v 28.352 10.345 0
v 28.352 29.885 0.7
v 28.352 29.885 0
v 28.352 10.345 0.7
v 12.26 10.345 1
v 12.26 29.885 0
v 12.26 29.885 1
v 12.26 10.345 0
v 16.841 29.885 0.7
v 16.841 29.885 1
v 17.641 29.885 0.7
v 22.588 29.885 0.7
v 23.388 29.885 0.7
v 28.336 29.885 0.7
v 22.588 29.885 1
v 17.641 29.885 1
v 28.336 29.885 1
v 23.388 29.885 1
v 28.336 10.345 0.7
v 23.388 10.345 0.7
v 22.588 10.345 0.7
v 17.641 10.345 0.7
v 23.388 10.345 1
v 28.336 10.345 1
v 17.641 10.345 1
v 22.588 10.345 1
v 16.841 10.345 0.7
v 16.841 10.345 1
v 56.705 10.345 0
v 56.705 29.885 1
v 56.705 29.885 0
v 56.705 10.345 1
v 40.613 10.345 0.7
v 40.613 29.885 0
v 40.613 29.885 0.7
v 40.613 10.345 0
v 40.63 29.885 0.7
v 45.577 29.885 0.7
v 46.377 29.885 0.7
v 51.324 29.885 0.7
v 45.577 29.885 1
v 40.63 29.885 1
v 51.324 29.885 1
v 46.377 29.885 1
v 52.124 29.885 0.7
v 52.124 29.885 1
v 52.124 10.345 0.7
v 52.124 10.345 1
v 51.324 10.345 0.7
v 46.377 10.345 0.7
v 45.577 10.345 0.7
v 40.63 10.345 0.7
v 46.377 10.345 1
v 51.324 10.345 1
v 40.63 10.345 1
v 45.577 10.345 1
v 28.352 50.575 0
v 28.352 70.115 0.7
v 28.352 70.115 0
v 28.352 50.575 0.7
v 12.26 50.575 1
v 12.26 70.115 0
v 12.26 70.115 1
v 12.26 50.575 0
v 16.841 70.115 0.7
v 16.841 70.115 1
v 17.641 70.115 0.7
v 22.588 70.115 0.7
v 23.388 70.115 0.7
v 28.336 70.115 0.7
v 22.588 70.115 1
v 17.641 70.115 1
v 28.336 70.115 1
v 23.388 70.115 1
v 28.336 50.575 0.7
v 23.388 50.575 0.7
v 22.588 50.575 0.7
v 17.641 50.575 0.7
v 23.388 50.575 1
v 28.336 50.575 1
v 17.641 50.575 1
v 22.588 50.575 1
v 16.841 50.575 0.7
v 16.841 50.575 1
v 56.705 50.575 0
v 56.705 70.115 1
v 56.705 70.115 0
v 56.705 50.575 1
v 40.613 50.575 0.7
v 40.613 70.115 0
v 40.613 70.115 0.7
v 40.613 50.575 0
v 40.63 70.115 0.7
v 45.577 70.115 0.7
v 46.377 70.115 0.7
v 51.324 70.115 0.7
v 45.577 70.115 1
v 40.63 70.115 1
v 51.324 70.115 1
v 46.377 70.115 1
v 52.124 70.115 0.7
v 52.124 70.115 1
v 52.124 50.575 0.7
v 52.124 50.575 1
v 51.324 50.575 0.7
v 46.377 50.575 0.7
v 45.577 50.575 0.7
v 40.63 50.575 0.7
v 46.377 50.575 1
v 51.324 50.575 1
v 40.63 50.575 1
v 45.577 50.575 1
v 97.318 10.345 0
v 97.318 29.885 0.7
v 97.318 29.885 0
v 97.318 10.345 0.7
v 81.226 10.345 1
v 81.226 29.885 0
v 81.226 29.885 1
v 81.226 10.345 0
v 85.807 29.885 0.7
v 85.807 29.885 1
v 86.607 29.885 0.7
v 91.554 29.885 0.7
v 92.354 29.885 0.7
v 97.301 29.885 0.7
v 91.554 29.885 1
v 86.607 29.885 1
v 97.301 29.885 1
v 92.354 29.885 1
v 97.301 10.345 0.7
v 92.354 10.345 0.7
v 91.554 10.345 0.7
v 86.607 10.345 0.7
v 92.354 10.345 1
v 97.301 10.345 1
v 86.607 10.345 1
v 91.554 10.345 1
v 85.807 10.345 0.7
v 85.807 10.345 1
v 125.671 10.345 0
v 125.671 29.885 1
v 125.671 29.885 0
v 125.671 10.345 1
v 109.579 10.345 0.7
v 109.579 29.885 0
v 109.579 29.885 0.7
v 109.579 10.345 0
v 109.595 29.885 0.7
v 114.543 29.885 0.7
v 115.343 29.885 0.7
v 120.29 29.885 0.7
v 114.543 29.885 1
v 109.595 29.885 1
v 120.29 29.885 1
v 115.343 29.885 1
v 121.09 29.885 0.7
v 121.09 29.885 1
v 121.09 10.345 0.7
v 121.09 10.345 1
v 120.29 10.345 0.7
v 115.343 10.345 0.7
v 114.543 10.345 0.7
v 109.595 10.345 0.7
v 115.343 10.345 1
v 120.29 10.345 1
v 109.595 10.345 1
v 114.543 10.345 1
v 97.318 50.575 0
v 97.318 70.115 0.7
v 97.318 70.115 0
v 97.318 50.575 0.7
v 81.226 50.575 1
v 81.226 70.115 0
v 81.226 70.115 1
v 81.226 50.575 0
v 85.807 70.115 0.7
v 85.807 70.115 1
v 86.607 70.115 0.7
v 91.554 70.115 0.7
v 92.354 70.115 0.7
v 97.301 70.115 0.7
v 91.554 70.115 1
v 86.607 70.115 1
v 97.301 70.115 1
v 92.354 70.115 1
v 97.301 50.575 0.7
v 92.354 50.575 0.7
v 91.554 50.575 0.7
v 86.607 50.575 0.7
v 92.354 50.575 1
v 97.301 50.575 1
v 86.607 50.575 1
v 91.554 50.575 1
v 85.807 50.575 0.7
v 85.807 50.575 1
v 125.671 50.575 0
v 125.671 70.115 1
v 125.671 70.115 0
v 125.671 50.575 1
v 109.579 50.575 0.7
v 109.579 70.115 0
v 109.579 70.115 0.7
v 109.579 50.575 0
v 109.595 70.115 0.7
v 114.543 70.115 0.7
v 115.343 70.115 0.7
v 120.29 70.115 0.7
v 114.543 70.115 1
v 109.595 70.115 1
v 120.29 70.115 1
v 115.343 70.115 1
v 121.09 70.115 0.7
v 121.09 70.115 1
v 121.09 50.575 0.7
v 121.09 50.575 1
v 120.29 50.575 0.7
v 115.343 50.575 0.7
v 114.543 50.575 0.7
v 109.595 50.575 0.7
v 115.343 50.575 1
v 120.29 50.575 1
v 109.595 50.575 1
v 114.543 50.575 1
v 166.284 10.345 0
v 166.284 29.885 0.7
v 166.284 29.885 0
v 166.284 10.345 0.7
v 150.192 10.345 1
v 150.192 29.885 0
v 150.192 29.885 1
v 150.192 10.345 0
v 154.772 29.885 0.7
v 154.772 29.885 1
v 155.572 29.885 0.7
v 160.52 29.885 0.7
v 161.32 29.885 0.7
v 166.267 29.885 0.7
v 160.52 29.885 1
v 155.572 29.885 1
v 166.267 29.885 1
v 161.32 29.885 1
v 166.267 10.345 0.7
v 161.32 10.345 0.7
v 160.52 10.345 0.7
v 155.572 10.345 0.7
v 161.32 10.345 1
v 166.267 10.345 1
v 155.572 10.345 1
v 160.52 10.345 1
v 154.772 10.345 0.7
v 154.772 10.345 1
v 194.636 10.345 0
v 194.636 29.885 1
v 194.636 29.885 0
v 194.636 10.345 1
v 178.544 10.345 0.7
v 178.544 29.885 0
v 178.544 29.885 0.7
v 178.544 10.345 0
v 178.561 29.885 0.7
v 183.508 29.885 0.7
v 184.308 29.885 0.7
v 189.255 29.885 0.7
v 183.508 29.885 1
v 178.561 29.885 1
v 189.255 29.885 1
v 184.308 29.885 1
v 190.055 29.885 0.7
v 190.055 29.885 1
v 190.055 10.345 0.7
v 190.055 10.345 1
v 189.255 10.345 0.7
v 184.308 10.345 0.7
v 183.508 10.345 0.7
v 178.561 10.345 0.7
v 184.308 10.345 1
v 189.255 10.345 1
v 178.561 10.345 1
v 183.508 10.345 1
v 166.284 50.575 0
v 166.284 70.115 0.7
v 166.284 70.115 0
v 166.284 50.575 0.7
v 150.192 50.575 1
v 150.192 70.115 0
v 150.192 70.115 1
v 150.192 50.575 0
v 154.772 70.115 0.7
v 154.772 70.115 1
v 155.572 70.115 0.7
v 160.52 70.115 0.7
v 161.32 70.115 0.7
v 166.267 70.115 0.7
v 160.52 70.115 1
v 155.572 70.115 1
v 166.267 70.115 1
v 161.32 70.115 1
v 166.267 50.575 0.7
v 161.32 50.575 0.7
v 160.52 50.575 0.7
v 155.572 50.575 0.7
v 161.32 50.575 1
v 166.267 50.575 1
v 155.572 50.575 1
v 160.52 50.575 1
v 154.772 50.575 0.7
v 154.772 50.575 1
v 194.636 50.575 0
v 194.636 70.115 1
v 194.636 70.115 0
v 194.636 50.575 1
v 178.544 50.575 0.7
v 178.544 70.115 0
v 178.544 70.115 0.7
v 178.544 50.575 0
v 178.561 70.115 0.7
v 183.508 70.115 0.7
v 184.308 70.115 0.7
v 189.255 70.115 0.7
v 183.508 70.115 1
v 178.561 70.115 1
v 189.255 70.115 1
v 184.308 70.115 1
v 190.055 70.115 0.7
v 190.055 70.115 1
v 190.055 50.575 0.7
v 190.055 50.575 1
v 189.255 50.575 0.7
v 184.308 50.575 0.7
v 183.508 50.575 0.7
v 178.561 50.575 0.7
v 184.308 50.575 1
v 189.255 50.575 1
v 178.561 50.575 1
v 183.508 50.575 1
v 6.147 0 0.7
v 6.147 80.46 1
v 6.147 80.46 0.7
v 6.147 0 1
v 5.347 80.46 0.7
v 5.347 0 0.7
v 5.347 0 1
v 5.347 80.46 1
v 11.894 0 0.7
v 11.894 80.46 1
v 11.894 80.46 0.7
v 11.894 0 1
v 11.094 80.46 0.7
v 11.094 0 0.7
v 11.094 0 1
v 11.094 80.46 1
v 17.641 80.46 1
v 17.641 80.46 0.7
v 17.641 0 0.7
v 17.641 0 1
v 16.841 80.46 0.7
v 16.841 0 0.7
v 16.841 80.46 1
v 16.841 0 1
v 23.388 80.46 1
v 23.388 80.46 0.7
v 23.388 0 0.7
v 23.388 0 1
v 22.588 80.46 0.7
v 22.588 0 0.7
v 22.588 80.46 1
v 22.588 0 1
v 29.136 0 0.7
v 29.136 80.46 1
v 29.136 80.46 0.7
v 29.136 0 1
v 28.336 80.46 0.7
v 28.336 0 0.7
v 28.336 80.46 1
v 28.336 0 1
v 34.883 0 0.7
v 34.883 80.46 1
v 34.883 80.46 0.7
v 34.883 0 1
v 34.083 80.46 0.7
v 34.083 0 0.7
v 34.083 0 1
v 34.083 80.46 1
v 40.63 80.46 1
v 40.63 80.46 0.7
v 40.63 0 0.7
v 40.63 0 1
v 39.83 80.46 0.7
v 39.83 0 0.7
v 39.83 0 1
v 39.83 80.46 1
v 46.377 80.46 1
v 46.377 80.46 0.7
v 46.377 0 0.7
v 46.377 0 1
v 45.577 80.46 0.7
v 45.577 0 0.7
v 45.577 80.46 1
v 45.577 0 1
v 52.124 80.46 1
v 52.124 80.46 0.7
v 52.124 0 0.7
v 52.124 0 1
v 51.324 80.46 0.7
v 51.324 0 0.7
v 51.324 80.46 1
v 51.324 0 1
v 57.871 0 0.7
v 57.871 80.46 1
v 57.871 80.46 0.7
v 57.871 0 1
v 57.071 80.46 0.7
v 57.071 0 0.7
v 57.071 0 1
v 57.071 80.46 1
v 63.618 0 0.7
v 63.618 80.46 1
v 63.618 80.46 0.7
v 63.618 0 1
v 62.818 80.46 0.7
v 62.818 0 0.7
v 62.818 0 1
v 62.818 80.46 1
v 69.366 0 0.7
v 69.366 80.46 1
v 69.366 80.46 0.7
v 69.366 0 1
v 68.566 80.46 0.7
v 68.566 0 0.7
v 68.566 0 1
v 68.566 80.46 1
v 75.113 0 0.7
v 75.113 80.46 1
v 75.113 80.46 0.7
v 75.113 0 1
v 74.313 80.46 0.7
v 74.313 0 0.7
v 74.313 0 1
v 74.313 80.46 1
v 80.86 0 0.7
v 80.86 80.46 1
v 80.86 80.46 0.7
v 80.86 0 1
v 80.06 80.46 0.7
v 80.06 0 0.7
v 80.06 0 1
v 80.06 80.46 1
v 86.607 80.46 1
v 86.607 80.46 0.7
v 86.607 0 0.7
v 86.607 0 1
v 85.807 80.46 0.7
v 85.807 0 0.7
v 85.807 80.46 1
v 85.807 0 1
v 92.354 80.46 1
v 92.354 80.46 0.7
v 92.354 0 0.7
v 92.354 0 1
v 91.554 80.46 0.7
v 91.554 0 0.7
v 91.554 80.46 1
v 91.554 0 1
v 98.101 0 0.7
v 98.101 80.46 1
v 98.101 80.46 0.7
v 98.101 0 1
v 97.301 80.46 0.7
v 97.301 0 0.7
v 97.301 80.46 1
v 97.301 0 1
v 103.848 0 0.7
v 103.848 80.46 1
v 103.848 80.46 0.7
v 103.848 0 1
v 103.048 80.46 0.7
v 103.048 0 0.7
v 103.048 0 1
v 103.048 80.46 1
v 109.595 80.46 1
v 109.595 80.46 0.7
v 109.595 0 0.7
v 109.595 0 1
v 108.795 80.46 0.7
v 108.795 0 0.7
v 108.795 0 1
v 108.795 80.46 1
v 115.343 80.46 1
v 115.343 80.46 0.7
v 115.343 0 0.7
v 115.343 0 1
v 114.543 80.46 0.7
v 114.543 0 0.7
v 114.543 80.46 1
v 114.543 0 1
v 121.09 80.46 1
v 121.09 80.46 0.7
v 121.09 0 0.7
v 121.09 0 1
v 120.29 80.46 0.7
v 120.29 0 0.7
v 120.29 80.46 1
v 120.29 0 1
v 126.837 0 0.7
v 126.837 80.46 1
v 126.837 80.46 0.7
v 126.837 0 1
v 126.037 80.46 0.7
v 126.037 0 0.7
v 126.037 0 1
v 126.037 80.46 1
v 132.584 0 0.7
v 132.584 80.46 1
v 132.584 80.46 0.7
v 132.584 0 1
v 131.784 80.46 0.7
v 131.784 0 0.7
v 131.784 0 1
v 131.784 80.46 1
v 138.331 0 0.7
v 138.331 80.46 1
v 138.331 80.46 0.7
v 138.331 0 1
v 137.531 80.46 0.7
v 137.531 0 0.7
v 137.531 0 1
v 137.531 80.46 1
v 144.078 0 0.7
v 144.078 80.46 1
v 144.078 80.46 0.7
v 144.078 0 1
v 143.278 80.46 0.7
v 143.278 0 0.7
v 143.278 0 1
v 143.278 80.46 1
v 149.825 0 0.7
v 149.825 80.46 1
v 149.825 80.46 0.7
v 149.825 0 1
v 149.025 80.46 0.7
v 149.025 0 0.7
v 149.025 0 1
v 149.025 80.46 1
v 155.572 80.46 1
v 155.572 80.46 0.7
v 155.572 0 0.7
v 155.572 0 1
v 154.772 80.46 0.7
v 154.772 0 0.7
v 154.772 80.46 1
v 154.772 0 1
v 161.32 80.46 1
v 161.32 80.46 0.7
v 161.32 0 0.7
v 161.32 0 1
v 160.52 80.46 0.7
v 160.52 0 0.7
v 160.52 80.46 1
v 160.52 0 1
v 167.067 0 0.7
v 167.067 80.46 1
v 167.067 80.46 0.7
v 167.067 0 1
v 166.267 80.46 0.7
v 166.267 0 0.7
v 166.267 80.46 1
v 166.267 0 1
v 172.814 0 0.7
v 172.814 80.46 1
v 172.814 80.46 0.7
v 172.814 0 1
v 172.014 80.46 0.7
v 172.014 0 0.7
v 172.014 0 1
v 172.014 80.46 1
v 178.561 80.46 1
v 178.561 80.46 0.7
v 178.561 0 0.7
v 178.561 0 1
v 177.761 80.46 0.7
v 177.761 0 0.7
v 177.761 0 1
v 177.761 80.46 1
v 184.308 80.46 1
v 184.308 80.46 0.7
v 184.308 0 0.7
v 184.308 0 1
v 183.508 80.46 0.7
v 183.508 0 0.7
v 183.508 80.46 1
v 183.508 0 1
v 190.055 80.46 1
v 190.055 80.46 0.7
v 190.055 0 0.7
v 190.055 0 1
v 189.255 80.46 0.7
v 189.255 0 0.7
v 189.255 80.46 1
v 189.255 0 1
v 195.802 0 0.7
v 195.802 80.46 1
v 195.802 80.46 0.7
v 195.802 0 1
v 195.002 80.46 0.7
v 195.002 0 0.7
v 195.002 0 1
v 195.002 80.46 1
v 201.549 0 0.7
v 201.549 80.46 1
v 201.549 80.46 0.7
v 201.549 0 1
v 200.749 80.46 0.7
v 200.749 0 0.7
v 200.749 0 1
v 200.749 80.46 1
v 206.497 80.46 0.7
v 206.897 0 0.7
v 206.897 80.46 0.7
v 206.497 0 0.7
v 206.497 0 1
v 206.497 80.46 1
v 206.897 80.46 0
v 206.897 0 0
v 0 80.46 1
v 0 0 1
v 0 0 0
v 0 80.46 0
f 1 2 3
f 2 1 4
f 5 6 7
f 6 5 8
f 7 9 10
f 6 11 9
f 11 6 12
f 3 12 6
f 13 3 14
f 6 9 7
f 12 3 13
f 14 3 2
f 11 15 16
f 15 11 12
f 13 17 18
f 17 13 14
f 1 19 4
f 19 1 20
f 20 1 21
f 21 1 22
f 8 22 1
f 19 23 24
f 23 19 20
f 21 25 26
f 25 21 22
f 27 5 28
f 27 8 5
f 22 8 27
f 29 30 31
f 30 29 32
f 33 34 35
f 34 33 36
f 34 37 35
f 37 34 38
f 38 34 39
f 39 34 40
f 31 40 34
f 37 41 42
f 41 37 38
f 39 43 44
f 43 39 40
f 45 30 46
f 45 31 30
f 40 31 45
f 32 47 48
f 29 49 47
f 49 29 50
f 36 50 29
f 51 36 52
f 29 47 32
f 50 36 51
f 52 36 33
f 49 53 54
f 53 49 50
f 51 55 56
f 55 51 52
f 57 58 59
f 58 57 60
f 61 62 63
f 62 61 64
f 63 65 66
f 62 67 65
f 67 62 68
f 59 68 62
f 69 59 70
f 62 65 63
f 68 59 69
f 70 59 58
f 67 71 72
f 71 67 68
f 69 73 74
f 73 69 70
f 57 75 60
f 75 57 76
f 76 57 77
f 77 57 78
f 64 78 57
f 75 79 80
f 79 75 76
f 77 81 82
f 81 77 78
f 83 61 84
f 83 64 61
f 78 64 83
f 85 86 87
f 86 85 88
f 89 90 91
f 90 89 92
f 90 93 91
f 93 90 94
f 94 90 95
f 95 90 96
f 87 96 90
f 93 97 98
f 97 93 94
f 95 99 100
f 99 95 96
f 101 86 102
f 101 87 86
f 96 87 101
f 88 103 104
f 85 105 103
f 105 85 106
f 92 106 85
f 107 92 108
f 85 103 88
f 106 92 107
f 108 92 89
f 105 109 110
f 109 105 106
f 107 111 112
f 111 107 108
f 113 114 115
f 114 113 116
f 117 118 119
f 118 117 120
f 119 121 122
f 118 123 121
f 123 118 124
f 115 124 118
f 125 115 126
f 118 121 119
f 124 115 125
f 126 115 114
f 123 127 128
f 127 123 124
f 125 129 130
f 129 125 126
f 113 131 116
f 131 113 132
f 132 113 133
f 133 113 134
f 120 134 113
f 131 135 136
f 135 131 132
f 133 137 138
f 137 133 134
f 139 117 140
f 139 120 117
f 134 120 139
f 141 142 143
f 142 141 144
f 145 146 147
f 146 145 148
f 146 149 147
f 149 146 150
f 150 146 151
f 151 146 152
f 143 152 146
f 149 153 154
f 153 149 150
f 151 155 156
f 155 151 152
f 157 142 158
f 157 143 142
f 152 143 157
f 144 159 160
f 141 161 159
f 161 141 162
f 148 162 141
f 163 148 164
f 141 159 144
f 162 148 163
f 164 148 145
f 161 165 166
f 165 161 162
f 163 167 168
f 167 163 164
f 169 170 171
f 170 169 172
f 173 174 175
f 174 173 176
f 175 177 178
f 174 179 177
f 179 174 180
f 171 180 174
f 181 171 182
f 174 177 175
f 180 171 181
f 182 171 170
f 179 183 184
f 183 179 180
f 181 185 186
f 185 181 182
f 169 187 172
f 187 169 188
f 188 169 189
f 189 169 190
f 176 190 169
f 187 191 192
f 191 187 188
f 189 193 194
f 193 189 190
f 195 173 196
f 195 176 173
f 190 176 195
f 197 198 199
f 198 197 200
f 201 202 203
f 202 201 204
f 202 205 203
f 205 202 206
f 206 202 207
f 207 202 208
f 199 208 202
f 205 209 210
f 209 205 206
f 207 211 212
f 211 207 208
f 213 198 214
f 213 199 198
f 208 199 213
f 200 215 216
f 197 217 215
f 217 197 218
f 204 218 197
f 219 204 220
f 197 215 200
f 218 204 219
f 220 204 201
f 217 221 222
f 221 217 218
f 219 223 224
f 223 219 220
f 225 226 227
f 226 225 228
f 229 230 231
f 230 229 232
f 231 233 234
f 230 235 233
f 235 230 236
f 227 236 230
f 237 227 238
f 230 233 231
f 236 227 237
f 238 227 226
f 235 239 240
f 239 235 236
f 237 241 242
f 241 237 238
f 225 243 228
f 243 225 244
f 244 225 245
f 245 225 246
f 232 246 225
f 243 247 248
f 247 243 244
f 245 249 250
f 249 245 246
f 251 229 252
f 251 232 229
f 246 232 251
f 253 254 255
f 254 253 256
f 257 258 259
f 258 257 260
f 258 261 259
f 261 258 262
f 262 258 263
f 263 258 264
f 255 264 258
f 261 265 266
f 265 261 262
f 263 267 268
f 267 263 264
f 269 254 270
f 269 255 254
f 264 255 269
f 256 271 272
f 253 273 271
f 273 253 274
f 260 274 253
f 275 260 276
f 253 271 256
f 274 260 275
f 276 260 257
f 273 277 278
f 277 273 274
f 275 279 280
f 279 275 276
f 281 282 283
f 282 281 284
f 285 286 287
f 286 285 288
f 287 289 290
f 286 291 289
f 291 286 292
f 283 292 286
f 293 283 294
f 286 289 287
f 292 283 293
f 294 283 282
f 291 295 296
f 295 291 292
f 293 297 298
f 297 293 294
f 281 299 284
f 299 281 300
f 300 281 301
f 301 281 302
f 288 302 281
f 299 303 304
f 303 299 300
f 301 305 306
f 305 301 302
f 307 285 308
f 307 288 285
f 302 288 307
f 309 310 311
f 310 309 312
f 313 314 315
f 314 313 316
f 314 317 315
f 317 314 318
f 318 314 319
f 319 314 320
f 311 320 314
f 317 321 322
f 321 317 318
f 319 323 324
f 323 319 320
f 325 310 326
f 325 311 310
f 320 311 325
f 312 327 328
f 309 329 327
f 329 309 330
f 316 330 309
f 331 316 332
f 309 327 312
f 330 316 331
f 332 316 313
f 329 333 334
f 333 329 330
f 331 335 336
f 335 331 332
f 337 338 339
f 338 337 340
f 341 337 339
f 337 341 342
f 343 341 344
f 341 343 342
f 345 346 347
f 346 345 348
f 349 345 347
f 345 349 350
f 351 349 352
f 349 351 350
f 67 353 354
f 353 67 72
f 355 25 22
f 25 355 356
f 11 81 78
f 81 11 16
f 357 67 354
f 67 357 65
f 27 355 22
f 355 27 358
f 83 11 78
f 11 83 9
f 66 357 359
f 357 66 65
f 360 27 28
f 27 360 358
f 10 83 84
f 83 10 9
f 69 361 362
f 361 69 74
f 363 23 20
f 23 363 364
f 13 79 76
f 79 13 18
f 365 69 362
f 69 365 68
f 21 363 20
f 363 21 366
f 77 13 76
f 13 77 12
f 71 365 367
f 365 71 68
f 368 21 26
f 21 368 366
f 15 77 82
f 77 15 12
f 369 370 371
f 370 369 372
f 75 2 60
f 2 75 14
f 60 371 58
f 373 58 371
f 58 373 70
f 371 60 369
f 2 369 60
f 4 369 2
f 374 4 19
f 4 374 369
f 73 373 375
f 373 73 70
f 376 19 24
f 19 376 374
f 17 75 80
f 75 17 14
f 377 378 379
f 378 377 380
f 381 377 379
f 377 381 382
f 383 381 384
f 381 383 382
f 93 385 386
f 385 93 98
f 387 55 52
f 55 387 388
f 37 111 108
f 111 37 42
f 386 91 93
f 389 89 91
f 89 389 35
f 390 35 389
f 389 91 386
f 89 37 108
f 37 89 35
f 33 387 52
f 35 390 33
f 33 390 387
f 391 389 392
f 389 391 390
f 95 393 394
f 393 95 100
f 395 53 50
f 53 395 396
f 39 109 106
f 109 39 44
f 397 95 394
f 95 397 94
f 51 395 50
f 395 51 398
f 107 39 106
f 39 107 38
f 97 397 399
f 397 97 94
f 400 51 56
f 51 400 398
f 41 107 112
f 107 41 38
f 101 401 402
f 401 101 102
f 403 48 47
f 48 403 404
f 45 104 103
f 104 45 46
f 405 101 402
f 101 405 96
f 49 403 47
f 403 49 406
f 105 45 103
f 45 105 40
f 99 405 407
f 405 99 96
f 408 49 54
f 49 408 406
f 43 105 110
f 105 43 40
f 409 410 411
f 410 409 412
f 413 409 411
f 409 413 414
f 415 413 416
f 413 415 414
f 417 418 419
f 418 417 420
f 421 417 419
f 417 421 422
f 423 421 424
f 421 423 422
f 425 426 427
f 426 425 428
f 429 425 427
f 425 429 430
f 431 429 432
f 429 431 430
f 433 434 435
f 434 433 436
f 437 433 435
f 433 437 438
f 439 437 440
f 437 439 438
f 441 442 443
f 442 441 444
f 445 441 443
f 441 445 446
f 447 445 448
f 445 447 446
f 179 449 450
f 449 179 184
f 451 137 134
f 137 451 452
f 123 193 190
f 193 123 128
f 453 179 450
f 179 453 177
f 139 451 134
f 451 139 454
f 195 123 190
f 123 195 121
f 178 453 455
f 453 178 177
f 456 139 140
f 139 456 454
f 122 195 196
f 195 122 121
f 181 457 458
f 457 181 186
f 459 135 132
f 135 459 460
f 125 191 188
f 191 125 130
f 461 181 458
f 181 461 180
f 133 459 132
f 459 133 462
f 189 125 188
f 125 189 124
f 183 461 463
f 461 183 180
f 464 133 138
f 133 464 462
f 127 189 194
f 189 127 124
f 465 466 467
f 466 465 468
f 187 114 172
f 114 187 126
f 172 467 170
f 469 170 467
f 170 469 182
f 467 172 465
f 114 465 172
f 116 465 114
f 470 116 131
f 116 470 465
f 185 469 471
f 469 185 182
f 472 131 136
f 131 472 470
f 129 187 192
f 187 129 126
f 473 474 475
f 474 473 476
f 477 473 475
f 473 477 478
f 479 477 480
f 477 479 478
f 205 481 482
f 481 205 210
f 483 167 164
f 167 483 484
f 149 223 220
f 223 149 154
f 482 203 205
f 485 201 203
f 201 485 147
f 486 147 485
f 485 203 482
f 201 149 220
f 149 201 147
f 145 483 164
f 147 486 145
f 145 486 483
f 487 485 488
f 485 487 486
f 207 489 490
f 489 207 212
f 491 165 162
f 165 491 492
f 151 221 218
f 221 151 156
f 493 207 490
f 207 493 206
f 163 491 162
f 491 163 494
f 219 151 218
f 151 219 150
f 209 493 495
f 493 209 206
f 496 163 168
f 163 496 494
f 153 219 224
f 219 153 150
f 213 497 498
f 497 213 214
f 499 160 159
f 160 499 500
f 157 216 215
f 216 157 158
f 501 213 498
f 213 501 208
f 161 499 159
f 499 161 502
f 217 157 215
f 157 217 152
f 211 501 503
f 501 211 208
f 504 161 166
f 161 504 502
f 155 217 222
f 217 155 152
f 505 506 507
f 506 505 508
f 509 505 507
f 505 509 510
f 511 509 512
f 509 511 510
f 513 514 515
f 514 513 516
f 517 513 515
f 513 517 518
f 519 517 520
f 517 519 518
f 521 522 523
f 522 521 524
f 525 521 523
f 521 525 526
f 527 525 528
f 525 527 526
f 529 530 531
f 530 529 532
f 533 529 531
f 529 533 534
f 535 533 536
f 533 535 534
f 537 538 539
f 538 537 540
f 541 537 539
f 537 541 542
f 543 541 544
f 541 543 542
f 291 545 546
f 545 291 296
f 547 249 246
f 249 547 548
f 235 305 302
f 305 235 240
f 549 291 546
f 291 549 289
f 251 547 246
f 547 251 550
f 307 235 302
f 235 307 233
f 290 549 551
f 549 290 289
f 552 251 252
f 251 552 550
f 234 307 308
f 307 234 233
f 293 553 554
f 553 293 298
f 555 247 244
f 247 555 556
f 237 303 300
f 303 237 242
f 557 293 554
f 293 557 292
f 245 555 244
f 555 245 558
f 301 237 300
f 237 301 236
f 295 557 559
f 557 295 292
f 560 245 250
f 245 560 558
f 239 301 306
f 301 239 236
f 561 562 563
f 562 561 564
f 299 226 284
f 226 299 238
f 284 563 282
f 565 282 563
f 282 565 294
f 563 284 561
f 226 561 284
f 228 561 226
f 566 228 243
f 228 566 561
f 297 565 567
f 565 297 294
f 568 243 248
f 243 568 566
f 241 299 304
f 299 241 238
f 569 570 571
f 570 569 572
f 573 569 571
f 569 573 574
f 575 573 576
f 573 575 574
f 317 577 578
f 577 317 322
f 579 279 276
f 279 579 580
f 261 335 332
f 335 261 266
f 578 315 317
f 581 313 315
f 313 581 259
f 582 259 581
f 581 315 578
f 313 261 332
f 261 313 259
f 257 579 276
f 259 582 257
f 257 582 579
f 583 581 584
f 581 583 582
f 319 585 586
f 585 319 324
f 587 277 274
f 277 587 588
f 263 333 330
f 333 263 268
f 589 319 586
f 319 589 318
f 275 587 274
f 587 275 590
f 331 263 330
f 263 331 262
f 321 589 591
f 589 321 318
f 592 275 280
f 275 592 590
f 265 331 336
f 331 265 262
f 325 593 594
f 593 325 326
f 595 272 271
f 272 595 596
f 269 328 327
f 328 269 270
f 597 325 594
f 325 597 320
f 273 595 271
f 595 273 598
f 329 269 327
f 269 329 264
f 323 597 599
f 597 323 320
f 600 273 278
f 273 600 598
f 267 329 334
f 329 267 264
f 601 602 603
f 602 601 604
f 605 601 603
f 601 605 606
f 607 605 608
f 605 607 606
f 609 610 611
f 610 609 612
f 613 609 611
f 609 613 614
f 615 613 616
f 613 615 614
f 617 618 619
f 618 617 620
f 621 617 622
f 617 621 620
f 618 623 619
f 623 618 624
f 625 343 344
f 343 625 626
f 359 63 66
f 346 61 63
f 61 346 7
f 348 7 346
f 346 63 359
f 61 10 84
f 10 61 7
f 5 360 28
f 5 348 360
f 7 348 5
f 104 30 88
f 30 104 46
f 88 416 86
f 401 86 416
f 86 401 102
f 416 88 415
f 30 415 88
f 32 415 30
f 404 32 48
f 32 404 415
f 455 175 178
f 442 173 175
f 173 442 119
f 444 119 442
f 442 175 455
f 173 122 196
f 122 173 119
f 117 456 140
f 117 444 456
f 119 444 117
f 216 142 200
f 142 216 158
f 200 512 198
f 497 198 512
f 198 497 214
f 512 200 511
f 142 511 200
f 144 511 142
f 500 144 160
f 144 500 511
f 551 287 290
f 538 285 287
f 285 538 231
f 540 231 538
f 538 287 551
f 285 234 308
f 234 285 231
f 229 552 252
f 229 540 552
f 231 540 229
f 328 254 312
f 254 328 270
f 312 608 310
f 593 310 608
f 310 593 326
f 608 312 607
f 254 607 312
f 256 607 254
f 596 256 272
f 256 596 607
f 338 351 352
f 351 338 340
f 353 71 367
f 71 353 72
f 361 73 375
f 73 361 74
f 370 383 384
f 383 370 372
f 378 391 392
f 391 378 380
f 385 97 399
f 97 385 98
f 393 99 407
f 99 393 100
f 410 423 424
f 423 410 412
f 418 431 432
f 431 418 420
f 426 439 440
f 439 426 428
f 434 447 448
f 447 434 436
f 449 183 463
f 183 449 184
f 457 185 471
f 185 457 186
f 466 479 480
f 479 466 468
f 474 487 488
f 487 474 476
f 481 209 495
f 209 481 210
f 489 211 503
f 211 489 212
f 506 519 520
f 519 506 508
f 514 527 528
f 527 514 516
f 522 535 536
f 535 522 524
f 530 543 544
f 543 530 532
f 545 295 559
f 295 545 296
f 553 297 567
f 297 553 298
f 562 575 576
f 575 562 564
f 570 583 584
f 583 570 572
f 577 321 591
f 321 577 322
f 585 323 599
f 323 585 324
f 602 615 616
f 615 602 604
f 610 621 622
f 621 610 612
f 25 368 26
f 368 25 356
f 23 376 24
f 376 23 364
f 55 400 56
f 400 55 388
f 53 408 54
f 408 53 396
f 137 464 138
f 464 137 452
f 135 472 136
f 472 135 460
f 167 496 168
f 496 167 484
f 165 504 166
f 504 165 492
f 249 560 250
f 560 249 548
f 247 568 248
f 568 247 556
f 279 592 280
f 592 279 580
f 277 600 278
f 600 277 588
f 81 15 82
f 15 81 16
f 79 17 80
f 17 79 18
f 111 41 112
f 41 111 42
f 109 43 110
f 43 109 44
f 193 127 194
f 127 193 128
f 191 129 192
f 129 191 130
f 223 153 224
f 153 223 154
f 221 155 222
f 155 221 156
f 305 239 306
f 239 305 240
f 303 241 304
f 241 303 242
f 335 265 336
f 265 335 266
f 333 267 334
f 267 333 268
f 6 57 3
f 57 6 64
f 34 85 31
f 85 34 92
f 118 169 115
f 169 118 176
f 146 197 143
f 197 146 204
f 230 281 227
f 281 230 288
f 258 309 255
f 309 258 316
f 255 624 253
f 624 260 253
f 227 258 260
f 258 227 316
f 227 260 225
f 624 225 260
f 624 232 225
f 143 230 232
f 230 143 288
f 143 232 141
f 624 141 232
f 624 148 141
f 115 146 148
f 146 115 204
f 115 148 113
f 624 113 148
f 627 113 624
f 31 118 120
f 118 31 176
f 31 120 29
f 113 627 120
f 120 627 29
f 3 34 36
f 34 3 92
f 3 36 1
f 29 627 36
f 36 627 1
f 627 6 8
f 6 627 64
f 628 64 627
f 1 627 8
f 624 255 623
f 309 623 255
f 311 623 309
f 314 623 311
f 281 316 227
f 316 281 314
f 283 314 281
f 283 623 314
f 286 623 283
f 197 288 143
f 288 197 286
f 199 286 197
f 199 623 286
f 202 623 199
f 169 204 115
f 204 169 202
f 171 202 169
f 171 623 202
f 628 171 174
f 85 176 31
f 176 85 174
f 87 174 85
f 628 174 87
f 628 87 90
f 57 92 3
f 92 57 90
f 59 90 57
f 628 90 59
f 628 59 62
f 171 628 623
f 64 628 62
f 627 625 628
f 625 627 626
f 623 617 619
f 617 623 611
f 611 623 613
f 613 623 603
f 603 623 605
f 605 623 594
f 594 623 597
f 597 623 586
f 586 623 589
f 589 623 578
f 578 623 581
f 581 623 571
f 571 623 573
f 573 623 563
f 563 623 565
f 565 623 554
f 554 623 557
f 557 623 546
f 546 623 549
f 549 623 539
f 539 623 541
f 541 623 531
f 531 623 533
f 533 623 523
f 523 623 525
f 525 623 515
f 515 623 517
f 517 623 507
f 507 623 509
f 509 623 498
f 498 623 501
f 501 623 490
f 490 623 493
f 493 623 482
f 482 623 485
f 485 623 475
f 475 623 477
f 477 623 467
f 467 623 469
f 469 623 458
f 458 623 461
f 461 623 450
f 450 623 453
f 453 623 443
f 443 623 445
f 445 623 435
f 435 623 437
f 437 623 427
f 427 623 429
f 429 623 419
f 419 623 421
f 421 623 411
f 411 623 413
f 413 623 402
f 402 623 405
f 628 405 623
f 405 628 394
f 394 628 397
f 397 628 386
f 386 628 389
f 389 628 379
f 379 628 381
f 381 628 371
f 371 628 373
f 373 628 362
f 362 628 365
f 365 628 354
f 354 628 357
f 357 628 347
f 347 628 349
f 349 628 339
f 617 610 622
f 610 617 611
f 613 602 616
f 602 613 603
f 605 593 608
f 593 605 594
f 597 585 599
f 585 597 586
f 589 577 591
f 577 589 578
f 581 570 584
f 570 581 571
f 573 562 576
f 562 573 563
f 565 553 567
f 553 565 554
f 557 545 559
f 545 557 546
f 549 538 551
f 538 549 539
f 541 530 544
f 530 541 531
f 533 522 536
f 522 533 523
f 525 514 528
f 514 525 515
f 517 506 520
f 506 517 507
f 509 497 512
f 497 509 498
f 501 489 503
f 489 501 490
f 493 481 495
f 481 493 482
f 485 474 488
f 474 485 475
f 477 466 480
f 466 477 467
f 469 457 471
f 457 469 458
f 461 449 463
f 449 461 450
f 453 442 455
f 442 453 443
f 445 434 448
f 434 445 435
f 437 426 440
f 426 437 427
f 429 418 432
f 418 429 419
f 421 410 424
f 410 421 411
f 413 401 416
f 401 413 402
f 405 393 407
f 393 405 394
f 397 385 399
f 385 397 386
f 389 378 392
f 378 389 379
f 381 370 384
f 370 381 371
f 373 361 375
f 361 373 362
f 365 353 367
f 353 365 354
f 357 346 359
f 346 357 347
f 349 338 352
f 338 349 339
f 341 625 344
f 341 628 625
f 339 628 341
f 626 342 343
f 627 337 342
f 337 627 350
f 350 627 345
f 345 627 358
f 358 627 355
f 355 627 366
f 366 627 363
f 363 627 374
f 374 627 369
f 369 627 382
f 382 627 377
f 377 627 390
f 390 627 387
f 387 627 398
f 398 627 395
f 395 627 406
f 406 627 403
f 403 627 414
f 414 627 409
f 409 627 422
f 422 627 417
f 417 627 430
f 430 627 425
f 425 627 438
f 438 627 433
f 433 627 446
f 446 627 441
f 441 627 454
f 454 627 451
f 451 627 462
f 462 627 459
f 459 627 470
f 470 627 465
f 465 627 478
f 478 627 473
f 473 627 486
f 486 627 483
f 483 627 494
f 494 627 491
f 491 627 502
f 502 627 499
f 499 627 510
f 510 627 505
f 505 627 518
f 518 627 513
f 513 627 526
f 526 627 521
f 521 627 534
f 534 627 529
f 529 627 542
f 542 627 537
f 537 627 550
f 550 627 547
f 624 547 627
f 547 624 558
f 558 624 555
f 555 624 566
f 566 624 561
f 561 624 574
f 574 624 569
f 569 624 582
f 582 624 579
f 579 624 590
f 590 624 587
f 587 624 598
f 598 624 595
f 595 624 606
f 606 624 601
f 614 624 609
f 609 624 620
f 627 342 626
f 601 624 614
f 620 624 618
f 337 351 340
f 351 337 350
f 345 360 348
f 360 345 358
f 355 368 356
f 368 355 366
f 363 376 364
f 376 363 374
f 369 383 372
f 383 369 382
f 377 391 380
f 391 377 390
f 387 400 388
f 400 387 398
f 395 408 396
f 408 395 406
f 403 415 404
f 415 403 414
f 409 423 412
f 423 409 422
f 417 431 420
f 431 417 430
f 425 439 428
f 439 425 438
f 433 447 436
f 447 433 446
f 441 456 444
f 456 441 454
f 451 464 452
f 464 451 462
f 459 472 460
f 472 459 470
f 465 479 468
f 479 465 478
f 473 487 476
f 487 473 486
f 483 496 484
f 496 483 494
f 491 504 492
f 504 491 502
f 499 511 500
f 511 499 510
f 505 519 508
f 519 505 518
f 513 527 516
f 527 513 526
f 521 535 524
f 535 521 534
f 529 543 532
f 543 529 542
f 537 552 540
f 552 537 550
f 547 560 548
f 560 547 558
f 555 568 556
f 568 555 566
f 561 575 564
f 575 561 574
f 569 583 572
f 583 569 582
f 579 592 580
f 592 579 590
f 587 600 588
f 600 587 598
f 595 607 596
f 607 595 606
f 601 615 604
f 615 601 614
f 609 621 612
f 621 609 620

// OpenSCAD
/*
 * PROMPT: Back wall panel of the Cities-Skylines-style police station main building
 * in H0 scale (1:87). Three-bay facade with two large windows per bay per floor
 * (twelve windows total). Vertical siding grooves on exterior face.
 * Flat 1 mm panel, exterior face up.
 */

$fn = 32;
S = 1/87;
panel_t = 1.0;

main_w_real   = 18000;
floor_h_real  = 3500;
win_w_real    = 1400;
win_h_real    = 1700;
siding_p_real = 500;
siding_w      = 0.8;
siding_d      = 0.3;

main_w   = main_w_real * S;
floor_h  = floor_h_real * S;
bld_h    = 2 * floor_h;
bay_w    = main_w / 3;
win_w    = win_w_real * S;
win_h    = win_h_real * S;
siding_p = siding_p_real * S;

module wall_back() {
    difference() {
        cube([main_w, bld_h, panel_t]);

        // windows: all three bays, both floors
        for (b = [0:2]) for (f = [0:1]) {
            wy = f * floor_h + (floor_h - win_h) / 2;
            g  = (bay_w - 2*win_w) / 3;
            for (i = [0:1])
                translate([b*bay_w + g + i*(win_w+g), wy, -1])
                    cube([win_w, win_h, panel_t+2]);
        }

        // vertical siding grooves on exterior face
        for (i = [1 : floor(main_w / siding_p)]) {
            gx = i * siding_p - siding_w/2;
            translate([gx, -1, panel_t - siding_d])
                cube([siding_w, bld_h+2, siding_d+1]);
        }
    }
}

wall_back();
